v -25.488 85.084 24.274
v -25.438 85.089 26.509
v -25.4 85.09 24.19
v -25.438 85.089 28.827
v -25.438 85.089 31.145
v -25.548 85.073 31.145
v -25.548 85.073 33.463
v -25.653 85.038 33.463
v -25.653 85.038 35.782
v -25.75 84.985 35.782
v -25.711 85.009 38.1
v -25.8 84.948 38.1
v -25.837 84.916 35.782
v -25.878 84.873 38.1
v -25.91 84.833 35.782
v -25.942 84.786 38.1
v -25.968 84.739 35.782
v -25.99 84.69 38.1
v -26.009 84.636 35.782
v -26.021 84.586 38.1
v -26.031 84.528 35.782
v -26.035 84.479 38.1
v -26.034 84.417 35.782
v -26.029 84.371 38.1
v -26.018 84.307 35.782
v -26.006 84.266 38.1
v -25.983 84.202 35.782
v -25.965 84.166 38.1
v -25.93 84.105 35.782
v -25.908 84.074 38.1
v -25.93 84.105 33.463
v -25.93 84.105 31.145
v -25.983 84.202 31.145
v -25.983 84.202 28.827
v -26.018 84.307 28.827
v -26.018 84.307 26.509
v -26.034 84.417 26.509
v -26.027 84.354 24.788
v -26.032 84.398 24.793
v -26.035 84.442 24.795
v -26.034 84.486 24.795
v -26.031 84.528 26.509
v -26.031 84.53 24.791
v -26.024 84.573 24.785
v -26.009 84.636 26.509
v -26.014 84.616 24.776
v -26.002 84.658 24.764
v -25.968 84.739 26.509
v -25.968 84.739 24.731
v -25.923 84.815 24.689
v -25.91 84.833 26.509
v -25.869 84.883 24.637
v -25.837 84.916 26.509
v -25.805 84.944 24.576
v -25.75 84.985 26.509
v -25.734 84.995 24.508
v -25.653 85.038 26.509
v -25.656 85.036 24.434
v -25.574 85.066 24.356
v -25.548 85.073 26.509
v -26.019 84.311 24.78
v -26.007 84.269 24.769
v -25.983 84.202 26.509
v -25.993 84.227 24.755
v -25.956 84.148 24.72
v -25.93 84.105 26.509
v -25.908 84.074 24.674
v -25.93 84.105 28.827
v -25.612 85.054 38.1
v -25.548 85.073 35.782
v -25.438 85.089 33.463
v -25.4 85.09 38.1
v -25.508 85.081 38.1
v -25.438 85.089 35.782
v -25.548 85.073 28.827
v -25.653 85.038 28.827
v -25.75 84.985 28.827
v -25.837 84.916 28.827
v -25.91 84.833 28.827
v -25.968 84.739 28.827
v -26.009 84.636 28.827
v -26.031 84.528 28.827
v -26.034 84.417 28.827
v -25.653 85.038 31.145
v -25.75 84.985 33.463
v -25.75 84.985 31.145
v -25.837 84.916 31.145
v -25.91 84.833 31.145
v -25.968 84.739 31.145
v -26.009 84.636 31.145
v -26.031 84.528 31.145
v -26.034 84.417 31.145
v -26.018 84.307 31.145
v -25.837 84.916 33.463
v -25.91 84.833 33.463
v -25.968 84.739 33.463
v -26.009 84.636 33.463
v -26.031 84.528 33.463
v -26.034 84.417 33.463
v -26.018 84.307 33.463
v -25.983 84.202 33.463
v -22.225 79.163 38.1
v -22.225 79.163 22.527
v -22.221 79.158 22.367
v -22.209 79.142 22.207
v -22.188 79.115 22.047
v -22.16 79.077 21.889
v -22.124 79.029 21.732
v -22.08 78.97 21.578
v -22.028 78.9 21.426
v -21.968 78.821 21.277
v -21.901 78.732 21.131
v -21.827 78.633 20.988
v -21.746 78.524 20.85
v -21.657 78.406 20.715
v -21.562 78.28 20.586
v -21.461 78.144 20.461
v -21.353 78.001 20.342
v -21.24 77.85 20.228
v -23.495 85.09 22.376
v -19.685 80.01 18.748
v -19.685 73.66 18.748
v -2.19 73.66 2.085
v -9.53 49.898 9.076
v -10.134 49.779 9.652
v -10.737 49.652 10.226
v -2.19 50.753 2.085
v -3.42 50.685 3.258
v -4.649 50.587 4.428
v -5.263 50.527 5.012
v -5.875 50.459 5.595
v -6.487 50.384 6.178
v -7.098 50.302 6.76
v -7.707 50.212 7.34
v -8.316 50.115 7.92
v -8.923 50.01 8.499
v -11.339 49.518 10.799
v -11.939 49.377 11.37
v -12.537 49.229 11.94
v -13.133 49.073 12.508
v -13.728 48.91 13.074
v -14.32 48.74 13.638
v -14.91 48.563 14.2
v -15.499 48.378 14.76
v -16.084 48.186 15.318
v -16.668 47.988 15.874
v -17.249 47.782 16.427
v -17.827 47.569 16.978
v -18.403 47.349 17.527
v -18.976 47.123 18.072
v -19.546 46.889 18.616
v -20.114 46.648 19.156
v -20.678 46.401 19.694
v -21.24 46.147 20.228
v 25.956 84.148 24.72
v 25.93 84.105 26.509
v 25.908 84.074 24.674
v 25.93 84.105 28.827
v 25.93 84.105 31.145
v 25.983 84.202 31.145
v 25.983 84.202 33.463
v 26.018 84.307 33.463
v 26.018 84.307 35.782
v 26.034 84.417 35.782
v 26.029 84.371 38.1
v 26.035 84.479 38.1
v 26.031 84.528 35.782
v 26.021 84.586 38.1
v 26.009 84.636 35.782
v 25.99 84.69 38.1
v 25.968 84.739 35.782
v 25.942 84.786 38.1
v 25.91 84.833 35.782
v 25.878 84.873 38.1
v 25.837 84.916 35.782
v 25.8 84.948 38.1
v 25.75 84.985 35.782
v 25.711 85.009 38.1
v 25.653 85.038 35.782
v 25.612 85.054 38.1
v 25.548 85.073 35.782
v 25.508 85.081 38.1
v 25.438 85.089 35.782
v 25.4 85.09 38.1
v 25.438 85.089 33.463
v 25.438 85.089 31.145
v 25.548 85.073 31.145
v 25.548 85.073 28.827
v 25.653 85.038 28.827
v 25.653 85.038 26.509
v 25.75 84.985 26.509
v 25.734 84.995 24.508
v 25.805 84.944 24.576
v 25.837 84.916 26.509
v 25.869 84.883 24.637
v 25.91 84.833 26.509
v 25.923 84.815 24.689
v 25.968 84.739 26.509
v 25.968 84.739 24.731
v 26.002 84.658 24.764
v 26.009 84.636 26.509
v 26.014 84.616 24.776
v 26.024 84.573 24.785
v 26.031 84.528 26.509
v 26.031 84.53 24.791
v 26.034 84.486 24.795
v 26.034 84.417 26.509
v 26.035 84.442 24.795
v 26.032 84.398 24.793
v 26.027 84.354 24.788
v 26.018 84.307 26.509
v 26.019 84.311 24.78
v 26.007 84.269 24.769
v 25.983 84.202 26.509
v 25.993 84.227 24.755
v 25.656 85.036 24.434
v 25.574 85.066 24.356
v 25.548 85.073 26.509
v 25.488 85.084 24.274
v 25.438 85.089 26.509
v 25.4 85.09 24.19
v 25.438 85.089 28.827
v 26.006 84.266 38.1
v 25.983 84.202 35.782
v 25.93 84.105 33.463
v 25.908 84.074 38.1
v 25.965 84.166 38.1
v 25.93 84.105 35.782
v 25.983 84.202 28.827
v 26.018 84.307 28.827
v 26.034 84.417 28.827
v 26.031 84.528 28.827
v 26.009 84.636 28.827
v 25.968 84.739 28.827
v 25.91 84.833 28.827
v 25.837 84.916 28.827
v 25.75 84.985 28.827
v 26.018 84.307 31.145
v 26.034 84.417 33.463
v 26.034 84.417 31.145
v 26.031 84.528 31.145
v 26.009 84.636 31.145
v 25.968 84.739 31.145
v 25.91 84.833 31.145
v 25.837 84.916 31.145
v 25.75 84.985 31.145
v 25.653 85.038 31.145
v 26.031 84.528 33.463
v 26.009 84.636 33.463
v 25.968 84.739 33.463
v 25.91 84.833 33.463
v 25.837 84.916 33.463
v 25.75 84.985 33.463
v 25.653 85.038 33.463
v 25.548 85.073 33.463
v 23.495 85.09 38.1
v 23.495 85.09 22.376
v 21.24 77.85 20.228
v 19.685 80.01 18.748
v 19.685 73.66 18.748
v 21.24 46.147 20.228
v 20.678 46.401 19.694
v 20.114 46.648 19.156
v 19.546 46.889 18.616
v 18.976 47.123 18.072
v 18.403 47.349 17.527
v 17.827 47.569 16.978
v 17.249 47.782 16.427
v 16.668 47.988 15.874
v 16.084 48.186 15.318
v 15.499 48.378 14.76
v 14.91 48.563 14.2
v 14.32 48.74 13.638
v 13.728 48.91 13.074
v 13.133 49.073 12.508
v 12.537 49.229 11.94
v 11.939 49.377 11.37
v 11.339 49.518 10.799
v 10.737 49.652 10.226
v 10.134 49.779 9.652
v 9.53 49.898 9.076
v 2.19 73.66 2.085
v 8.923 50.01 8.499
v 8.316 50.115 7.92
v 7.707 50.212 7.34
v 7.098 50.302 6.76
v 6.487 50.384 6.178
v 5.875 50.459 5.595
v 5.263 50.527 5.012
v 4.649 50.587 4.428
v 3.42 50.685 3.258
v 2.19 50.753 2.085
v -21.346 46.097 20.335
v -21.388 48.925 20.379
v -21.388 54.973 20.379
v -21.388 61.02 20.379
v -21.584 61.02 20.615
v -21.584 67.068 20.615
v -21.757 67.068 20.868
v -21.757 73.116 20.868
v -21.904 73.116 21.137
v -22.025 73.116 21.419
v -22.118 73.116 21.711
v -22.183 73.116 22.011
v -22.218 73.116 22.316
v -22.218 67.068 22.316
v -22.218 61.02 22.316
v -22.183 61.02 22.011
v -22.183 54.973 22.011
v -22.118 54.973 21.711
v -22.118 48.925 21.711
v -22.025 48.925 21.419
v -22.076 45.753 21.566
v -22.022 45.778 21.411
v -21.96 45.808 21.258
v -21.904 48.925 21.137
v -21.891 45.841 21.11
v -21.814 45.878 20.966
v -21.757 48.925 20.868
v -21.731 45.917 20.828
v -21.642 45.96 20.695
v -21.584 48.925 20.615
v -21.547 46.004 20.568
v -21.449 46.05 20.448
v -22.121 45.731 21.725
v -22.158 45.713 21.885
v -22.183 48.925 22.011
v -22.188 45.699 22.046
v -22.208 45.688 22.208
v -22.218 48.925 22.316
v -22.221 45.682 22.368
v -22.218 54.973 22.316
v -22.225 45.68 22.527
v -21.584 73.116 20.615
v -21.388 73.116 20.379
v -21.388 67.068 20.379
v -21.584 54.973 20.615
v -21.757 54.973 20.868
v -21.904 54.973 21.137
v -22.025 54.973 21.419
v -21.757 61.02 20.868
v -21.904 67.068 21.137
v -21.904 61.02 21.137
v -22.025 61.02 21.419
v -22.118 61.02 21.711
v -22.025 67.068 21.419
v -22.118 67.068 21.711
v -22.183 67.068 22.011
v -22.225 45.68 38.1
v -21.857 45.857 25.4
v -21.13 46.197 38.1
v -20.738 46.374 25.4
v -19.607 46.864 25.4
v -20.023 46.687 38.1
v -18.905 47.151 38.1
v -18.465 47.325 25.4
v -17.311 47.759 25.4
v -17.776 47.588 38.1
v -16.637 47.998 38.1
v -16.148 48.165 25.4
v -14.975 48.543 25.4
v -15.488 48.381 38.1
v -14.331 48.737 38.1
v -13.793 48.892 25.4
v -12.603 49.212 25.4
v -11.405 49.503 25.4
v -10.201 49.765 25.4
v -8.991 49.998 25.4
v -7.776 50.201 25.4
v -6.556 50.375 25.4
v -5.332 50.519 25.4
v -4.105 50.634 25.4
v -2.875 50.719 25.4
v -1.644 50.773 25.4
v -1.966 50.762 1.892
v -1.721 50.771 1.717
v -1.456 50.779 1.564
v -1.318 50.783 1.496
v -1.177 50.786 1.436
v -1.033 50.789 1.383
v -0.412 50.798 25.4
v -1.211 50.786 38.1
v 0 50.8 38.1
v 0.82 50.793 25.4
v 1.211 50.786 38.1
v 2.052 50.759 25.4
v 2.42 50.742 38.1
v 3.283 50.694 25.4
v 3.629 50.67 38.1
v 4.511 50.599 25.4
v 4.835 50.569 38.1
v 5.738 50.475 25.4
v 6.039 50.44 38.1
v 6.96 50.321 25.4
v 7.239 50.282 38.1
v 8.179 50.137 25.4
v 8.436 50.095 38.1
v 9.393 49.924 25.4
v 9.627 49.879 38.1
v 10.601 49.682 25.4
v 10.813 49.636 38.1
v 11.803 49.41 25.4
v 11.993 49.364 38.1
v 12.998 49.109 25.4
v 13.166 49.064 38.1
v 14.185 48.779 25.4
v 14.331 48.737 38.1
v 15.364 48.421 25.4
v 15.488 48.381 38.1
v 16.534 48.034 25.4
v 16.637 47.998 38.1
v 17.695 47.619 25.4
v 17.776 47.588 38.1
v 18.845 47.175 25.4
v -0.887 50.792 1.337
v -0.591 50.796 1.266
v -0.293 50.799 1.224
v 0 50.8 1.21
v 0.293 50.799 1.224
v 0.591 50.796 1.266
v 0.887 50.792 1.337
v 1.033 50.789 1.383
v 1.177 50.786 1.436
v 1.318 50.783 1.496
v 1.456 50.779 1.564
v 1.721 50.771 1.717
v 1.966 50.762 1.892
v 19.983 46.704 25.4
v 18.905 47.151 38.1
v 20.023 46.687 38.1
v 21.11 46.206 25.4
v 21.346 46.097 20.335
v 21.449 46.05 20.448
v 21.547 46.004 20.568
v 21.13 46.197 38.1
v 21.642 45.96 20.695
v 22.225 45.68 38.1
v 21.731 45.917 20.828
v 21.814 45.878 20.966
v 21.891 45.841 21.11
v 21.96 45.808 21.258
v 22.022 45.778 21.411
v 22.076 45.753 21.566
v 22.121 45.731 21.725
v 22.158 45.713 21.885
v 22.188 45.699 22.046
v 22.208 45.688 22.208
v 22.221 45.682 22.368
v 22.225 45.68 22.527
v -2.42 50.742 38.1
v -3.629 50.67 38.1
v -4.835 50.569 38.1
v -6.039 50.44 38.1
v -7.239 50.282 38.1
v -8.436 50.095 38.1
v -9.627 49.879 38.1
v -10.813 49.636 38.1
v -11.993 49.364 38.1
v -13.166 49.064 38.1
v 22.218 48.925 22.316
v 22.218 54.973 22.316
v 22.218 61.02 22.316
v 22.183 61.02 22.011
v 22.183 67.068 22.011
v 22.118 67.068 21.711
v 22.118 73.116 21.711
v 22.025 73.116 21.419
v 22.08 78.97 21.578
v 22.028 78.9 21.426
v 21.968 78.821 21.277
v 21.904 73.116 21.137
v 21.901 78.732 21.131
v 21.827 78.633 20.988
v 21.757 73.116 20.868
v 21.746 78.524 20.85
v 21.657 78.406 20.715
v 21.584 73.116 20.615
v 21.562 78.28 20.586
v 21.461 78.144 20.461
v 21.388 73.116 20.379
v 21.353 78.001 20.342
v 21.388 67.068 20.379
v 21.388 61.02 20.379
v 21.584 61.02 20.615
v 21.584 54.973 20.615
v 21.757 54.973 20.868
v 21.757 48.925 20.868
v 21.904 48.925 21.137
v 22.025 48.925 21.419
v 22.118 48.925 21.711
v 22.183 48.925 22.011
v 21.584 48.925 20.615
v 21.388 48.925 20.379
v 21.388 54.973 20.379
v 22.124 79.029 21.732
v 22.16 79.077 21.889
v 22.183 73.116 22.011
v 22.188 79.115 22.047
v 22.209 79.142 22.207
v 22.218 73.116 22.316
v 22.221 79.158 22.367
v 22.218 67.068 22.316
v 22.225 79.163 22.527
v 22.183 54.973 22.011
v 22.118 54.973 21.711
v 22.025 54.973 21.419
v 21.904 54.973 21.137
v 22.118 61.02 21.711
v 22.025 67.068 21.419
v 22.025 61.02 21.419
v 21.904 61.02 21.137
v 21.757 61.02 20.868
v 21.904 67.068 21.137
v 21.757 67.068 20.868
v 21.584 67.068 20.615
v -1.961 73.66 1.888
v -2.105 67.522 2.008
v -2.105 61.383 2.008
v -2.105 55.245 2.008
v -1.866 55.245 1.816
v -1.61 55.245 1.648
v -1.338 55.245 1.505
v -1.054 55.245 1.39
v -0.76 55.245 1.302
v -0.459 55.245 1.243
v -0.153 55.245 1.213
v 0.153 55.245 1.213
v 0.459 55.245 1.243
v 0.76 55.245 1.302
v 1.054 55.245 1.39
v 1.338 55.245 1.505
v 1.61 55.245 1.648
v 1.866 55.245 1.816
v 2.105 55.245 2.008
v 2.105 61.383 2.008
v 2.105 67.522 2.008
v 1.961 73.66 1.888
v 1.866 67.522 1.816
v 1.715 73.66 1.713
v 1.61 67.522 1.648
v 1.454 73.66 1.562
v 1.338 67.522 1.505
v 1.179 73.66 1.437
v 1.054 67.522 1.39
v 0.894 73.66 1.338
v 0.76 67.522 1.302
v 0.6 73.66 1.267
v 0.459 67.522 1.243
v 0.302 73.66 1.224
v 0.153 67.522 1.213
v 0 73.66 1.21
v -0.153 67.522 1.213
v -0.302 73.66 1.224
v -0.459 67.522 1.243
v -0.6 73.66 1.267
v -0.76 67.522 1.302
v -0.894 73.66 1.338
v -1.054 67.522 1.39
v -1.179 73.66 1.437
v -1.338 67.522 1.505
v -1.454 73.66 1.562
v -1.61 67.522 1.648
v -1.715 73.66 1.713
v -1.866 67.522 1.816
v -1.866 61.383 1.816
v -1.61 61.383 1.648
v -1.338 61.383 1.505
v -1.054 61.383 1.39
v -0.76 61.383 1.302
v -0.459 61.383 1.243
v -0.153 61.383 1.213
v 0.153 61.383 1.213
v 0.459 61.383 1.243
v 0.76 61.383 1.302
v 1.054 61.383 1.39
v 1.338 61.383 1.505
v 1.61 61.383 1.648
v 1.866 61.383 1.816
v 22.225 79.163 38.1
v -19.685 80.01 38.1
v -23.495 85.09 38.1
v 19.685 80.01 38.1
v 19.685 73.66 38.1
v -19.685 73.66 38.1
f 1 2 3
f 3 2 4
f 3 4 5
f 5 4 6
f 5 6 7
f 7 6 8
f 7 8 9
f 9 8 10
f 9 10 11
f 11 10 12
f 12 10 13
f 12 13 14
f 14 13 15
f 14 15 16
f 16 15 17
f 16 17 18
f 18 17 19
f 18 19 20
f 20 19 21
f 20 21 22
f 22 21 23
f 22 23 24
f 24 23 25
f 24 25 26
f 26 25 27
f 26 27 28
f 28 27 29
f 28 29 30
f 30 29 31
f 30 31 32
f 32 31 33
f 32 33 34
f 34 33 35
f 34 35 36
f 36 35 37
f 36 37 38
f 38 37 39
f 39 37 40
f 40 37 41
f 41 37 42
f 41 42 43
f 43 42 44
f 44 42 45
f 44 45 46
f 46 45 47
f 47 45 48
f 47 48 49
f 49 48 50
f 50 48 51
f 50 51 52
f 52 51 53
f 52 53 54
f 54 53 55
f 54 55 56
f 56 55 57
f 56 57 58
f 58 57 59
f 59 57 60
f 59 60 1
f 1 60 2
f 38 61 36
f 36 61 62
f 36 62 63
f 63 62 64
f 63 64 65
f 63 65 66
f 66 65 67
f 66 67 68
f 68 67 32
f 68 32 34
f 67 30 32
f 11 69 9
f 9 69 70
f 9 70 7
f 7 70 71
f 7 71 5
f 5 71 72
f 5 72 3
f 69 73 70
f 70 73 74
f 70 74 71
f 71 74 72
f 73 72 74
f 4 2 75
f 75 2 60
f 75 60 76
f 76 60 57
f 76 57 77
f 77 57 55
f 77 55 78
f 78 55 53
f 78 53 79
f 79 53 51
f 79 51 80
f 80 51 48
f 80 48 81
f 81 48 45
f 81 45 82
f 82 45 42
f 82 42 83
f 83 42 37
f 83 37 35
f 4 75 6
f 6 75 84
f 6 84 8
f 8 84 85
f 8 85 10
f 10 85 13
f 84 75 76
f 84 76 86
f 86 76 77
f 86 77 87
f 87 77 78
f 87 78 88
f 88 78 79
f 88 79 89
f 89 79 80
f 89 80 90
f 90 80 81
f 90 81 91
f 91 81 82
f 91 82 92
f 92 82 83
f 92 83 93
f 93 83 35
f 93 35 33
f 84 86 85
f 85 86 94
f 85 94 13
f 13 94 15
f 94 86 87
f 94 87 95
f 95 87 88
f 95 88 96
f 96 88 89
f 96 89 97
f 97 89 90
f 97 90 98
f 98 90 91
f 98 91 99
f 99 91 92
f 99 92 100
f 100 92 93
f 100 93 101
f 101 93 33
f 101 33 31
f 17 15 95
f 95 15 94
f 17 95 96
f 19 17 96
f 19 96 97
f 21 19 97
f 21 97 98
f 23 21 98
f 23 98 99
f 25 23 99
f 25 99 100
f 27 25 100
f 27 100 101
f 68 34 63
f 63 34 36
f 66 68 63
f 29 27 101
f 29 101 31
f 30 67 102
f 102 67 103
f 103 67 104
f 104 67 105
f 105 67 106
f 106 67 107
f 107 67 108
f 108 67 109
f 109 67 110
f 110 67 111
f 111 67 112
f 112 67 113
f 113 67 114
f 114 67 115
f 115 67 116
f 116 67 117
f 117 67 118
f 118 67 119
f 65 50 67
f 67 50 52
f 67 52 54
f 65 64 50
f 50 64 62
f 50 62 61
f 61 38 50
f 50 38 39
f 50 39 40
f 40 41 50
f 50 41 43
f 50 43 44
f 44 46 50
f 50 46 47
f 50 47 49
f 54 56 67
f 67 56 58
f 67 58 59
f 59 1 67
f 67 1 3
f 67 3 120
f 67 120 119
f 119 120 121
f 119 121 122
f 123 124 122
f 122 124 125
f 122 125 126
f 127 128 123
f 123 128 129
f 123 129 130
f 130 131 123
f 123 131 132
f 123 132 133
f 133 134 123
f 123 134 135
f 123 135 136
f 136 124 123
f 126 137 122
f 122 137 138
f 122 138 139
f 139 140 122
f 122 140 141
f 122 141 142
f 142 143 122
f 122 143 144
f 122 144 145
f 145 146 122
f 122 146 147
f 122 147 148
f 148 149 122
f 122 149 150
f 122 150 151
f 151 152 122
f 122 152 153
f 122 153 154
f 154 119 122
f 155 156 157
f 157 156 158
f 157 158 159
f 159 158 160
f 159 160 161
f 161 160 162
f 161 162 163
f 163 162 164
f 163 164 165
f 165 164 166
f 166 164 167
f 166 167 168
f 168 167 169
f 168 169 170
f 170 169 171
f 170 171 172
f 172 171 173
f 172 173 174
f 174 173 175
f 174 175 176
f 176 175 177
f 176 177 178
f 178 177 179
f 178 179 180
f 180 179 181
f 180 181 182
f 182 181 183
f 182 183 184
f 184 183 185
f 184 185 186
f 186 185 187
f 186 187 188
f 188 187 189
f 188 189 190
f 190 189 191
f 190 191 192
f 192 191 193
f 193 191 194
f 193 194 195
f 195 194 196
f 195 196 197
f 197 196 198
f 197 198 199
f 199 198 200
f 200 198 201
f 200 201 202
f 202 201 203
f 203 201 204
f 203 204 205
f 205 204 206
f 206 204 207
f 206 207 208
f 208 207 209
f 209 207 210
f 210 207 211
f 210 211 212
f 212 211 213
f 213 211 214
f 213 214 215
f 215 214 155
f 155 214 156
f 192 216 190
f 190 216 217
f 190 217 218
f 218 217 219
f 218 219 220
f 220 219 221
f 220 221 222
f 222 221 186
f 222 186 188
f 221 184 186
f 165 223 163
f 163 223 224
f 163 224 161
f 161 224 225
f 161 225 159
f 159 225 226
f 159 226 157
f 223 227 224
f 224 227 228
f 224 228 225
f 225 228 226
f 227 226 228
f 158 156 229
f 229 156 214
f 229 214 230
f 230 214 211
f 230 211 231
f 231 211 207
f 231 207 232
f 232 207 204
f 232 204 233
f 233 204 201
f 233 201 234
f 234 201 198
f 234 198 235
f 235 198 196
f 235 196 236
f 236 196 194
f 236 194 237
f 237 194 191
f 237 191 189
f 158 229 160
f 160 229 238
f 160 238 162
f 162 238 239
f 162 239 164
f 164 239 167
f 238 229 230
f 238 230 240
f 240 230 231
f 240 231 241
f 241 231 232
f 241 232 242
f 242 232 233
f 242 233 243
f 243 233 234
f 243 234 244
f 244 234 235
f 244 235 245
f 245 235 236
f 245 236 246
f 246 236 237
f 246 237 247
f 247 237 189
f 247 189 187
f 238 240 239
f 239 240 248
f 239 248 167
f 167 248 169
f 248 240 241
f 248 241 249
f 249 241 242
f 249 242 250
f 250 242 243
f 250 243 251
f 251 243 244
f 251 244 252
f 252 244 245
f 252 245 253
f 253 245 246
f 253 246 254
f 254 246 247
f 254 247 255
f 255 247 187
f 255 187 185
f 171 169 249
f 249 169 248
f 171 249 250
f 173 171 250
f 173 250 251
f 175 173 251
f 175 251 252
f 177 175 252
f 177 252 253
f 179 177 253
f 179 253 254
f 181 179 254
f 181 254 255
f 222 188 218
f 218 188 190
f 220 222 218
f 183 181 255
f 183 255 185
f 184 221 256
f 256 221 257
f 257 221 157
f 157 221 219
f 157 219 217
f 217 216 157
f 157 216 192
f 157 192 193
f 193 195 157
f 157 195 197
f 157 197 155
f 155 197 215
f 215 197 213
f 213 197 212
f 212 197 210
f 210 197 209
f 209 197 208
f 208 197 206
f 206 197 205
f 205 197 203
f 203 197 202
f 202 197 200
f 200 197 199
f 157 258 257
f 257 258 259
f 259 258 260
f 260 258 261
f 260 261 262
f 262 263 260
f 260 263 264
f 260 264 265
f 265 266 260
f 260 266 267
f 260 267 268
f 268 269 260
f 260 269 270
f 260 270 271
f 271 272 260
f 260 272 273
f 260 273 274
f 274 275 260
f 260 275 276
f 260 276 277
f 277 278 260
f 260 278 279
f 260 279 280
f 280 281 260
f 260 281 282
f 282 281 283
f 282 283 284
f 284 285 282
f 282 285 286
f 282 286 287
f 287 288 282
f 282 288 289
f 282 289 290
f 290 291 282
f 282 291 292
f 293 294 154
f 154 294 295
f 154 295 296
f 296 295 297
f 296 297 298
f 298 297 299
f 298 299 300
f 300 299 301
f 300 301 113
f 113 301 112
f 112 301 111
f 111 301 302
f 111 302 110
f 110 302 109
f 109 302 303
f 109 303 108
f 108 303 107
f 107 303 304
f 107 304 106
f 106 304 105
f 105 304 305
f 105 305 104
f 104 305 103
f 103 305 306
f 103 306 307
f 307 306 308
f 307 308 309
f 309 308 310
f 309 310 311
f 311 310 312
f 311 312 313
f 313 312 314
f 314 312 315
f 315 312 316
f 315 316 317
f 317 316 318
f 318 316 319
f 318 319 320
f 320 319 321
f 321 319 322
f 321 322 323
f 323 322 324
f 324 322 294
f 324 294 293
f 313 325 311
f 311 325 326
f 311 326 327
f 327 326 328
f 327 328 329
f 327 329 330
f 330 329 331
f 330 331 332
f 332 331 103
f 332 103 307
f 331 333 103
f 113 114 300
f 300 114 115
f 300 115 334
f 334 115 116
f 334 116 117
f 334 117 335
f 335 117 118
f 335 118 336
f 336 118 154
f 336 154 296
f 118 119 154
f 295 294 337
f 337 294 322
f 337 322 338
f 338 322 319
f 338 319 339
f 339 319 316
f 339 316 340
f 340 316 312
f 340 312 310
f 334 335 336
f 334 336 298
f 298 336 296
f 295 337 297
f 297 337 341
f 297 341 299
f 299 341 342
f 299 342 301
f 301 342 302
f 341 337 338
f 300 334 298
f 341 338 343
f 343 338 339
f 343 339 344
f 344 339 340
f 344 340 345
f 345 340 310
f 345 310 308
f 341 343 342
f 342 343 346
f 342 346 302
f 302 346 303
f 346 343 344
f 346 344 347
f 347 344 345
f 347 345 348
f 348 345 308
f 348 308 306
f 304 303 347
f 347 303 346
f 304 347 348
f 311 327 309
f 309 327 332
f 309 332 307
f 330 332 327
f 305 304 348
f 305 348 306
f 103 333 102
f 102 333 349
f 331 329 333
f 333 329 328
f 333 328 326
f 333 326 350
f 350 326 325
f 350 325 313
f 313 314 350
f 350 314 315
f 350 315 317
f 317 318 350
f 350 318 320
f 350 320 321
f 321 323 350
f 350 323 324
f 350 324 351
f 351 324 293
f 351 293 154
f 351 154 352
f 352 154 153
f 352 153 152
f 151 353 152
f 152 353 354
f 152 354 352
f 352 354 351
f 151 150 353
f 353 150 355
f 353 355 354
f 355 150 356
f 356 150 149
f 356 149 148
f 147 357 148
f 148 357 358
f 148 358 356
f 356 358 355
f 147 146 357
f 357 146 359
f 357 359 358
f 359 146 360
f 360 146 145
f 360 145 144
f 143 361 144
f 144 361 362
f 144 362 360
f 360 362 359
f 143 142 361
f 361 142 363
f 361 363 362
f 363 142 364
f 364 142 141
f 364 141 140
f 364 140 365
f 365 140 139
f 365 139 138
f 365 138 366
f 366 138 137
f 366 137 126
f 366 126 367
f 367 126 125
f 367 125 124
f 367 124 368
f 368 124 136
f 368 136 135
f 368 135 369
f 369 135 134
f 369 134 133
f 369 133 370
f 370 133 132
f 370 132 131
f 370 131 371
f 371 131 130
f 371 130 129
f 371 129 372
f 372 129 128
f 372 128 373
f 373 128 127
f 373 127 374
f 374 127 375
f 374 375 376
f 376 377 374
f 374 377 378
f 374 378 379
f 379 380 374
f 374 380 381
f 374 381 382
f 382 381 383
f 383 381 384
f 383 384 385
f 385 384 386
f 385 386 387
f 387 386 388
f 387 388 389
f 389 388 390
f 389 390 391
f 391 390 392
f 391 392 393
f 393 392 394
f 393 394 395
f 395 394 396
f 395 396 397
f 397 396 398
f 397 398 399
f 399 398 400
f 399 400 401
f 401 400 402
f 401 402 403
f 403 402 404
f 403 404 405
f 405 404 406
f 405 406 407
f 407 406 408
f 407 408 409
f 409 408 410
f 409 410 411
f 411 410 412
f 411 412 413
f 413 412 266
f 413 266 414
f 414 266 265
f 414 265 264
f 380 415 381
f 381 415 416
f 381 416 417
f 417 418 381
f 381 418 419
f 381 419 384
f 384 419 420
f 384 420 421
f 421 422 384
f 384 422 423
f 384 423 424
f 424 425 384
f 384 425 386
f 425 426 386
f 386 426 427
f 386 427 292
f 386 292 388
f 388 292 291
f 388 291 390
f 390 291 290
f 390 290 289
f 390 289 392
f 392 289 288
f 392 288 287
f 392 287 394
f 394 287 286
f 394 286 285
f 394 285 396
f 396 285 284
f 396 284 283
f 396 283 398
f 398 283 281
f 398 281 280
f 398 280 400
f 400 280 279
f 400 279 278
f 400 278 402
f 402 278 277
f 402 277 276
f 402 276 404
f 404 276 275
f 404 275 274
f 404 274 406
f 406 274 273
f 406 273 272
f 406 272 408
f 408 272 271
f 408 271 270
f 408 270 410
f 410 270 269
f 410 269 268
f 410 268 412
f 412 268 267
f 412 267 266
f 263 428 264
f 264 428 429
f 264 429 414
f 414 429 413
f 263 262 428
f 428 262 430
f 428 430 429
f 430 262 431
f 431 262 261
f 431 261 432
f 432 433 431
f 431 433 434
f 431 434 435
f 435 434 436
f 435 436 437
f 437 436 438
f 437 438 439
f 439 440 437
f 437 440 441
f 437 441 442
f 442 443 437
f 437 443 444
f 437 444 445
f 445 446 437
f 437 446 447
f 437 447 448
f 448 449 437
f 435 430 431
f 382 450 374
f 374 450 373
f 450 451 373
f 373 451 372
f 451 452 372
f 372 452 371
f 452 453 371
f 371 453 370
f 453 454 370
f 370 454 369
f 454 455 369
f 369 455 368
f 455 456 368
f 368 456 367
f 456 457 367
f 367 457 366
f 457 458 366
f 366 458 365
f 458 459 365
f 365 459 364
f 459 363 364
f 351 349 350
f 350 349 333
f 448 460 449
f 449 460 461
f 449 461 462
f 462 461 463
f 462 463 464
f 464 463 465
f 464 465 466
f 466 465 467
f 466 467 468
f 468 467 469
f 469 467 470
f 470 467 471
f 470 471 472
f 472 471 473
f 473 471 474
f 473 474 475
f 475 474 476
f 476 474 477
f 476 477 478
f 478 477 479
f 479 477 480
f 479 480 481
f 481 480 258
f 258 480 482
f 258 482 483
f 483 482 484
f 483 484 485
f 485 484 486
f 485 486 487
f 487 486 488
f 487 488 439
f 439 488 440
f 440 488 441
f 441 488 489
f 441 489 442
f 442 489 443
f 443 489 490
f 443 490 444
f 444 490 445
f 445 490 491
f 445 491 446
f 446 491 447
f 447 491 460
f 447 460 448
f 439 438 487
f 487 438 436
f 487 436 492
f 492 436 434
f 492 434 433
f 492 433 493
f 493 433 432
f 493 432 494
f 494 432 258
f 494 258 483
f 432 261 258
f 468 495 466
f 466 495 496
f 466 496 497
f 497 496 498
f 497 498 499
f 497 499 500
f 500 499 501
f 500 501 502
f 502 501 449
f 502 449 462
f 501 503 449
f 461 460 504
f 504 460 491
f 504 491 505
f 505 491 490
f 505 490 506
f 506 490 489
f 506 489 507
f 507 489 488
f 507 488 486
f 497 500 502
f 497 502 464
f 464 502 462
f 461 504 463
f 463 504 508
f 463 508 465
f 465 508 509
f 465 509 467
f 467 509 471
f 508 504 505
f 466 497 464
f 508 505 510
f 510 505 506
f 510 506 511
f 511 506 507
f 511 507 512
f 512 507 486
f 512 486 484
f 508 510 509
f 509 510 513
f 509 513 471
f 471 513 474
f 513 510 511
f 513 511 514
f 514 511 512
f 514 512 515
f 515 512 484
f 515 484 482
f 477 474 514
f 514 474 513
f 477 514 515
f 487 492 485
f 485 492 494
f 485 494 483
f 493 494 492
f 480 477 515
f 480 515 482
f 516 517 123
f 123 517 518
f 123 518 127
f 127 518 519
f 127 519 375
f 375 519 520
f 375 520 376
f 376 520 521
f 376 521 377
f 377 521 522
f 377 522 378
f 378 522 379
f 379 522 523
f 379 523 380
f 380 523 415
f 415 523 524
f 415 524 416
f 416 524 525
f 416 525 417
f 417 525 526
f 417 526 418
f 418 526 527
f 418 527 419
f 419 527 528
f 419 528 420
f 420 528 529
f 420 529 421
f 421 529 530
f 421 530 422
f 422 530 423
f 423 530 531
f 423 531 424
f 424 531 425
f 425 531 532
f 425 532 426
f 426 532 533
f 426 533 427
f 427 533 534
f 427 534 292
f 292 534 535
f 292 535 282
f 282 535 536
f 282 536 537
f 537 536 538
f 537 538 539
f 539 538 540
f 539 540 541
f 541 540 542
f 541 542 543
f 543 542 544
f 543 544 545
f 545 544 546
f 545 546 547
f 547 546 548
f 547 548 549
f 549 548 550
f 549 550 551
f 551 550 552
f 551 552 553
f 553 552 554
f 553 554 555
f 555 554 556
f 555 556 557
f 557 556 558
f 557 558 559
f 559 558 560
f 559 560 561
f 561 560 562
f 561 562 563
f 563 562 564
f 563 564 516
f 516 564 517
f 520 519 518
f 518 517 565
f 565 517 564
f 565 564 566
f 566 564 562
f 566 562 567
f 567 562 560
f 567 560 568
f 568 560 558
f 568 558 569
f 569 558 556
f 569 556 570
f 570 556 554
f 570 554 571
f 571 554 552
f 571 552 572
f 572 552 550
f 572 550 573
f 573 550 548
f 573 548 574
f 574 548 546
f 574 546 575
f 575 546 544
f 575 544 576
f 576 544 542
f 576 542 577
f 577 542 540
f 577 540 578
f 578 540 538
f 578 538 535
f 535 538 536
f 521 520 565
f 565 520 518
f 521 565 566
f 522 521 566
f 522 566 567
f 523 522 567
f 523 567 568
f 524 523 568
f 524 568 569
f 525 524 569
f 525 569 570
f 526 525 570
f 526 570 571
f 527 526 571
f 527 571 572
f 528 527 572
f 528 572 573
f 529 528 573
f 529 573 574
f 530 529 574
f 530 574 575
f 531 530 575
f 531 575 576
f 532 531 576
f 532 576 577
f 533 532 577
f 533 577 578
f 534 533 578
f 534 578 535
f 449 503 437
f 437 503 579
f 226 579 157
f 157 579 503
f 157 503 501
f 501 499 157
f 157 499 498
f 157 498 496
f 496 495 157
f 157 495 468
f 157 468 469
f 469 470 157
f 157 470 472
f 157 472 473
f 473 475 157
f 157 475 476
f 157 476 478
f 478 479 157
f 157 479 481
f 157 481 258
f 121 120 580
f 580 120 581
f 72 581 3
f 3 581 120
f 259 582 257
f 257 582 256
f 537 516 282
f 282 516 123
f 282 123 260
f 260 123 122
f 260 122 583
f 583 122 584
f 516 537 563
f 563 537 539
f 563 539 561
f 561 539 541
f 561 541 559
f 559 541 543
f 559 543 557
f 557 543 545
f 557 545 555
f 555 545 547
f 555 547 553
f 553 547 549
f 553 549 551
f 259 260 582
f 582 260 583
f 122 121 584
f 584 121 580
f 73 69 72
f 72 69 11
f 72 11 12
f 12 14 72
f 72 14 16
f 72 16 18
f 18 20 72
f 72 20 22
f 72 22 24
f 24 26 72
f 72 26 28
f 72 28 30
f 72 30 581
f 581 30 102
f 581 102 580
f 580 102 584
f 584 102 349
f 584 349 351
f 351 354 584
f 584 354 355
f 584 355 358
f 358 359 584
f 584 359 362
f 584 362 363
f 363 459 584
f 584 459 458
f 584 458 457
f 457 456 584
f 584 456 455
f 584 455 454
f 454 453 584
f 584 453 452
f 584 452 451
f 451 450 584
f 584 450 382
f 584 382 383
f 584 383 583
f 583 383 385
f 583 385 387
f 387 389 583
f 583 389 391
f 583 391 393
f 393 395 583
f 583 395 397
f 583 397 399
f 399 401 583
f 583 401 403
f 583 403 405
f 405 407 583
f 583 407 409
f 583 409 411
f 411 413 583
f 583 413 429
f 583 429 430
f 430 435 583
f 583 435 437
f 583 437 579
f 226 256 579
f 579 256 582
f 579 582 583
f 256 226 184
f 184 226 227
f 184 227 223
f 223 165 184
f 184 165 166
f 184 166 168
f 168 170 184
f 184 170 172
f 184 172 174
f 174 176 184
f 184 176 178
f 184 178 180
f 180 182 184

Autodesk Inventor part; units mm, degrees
ref_plane "YZ Plane" through (0, 0, 0) normal (1, 0, 0) x (0, 1, 0)
ref_plane "XZ Plane" through (0, 0, 0) normal (0, 1, 0) x (-1, 0, 0)
ref_plane "XY Plane" through (0, 0, 0) normal (0, 0, 1) x (1, 0, 0)
sketch "Sketch1" plane through (0, 0, 0) normal (0, 0, 1) x (1, 0, 0)
  arc A0 (22.225, 45.6803) -> (-22.225, 45.6803) centre (0, 0) ccw
  line L0 (-22.225, 45.6803) -> (-22.225, 73.66)
  line L1 (-22.225, 73.66) -> (22.225, 73.66)
  line L2 (22.225, 73.66) -> (22.225, 45.6803)
  line L3 (0, 73.66) -> (0, 50.8) construction
  line L4 (-22.225, 73.66) -> (-19.685, 73.66)
  line L5 (-19.685, 73.66) -> (-19.685, 80.01)
  line L6 (-19.685, 80.01) -> (-22.225, 80.01)
  line L7 (-22.225, 80.01) -> (-22.225, 73.66)
  line L8 (22.225, 73.66) -> (19.685, 73.66)
  line L9 (19.685, 73.66) -> (19.685, 80.01)
  line L10 (19.685, 80.01) -> (22.225, 80.01)
  line L11 (22.225, 80.01) -> (22.225, 73.66)
  dimension "d0" = 101.6
  dimension "d1" = 44.45
  dimension "d2" = 22.86
  dimension "d3" = 2.54
  dimension "d4" = 6.35
  dimension "d5" = 2.54
  dimension "d6" = 6.35
extrude "Extrusion1" add sketch "Sketch1" along normal blind 38.1
sketch "Sketch2" plane through (0, 0, 38.1) normal (0, 0, 1) x (1, 0, 0)
  line L0 (-19.685, 80.01) -> (-22.225, 80.01) projected
  line L1 (-22.225, 80.01) -> (-22.225, 45.6803) projected
  line L2 (22.225, 80.01) -> (19.685, 80.01) projected
  line L3 (22.225, 45.6803) -> (22.225, 80.01) projected
  line L4 (-19.685, 80.01) -> (-23.495, 85.09)
  line L5 (-23.495, 85.09) -> (-26.67, 85.09)
  line L6 (-26.67, 85.09) -> (-22.225, 79.1633)
  line L7 (19.685, 80.01) -> (23.495, 85.09)
  line L8 (23.495, 85.09) -> (26.67, 85.09)
  line L9 (26.67, 85.09) -> (22.225, 79.1633)
  line L10 (-23.495, 85.09) -> (23.495, 85.09) construction
  line L11 (19.685, 73.66) -> (-19.685, 73.66) construction
  point P0 (0, 0)
  point P1 (0, 85.09)
  point P2 (0, 73.66)
  dimension "d9" = 2.54
  dimension "d10" = 2.54
  dimension "d11" = 5.08
  dimension "d12" = 46.99
extrude "Extrusion2" add sketch "Sketch2" against normal up to surface (38.1 mm away)
sketch "Sketch3" plane through (0, 0, 0) normal (0, 1, 0) x (-1, 0, 0)
  line L0 (0, 0) -> (26.67, 25.4)
  line L1 (26.67, 38.1) -> (26.67, 0) projected
  line L2 (26.67, 0) -> (23.495, 0) projected
  line L3 (26.67, 0) -> (26.67, 25.4)
  line L4 (26.67, 0) -> (0, 0)
  line L5 (0, 0) -> (-26.67, 25.4)
  line L6 (-26.67, 38.1) -> (-26.67, 0) projected
  line L7 (-26.67, 25.4) -> (-26.67, 0)
  line L8 (-26.67, 0) -> (0, 0)
  dimension "d15" = 25.4
extrude "Extrusion3" cut sketch "Sketch3" along normal through all
fillet "Fillet1" radius 3.175 3 edges at (0, 62.23, 0) (22.225, 62.4218, 21.1667) (-22.225, 62.4218, 21.1667)
fillet "Fillet2" radius 0.635 2 edges at (26.67, 85.09, 31.75) (-26.67, 85.09, 31.75)
equation "\"d10\" = d9"
properties part number "aftMount" material "ABS Plastic"
